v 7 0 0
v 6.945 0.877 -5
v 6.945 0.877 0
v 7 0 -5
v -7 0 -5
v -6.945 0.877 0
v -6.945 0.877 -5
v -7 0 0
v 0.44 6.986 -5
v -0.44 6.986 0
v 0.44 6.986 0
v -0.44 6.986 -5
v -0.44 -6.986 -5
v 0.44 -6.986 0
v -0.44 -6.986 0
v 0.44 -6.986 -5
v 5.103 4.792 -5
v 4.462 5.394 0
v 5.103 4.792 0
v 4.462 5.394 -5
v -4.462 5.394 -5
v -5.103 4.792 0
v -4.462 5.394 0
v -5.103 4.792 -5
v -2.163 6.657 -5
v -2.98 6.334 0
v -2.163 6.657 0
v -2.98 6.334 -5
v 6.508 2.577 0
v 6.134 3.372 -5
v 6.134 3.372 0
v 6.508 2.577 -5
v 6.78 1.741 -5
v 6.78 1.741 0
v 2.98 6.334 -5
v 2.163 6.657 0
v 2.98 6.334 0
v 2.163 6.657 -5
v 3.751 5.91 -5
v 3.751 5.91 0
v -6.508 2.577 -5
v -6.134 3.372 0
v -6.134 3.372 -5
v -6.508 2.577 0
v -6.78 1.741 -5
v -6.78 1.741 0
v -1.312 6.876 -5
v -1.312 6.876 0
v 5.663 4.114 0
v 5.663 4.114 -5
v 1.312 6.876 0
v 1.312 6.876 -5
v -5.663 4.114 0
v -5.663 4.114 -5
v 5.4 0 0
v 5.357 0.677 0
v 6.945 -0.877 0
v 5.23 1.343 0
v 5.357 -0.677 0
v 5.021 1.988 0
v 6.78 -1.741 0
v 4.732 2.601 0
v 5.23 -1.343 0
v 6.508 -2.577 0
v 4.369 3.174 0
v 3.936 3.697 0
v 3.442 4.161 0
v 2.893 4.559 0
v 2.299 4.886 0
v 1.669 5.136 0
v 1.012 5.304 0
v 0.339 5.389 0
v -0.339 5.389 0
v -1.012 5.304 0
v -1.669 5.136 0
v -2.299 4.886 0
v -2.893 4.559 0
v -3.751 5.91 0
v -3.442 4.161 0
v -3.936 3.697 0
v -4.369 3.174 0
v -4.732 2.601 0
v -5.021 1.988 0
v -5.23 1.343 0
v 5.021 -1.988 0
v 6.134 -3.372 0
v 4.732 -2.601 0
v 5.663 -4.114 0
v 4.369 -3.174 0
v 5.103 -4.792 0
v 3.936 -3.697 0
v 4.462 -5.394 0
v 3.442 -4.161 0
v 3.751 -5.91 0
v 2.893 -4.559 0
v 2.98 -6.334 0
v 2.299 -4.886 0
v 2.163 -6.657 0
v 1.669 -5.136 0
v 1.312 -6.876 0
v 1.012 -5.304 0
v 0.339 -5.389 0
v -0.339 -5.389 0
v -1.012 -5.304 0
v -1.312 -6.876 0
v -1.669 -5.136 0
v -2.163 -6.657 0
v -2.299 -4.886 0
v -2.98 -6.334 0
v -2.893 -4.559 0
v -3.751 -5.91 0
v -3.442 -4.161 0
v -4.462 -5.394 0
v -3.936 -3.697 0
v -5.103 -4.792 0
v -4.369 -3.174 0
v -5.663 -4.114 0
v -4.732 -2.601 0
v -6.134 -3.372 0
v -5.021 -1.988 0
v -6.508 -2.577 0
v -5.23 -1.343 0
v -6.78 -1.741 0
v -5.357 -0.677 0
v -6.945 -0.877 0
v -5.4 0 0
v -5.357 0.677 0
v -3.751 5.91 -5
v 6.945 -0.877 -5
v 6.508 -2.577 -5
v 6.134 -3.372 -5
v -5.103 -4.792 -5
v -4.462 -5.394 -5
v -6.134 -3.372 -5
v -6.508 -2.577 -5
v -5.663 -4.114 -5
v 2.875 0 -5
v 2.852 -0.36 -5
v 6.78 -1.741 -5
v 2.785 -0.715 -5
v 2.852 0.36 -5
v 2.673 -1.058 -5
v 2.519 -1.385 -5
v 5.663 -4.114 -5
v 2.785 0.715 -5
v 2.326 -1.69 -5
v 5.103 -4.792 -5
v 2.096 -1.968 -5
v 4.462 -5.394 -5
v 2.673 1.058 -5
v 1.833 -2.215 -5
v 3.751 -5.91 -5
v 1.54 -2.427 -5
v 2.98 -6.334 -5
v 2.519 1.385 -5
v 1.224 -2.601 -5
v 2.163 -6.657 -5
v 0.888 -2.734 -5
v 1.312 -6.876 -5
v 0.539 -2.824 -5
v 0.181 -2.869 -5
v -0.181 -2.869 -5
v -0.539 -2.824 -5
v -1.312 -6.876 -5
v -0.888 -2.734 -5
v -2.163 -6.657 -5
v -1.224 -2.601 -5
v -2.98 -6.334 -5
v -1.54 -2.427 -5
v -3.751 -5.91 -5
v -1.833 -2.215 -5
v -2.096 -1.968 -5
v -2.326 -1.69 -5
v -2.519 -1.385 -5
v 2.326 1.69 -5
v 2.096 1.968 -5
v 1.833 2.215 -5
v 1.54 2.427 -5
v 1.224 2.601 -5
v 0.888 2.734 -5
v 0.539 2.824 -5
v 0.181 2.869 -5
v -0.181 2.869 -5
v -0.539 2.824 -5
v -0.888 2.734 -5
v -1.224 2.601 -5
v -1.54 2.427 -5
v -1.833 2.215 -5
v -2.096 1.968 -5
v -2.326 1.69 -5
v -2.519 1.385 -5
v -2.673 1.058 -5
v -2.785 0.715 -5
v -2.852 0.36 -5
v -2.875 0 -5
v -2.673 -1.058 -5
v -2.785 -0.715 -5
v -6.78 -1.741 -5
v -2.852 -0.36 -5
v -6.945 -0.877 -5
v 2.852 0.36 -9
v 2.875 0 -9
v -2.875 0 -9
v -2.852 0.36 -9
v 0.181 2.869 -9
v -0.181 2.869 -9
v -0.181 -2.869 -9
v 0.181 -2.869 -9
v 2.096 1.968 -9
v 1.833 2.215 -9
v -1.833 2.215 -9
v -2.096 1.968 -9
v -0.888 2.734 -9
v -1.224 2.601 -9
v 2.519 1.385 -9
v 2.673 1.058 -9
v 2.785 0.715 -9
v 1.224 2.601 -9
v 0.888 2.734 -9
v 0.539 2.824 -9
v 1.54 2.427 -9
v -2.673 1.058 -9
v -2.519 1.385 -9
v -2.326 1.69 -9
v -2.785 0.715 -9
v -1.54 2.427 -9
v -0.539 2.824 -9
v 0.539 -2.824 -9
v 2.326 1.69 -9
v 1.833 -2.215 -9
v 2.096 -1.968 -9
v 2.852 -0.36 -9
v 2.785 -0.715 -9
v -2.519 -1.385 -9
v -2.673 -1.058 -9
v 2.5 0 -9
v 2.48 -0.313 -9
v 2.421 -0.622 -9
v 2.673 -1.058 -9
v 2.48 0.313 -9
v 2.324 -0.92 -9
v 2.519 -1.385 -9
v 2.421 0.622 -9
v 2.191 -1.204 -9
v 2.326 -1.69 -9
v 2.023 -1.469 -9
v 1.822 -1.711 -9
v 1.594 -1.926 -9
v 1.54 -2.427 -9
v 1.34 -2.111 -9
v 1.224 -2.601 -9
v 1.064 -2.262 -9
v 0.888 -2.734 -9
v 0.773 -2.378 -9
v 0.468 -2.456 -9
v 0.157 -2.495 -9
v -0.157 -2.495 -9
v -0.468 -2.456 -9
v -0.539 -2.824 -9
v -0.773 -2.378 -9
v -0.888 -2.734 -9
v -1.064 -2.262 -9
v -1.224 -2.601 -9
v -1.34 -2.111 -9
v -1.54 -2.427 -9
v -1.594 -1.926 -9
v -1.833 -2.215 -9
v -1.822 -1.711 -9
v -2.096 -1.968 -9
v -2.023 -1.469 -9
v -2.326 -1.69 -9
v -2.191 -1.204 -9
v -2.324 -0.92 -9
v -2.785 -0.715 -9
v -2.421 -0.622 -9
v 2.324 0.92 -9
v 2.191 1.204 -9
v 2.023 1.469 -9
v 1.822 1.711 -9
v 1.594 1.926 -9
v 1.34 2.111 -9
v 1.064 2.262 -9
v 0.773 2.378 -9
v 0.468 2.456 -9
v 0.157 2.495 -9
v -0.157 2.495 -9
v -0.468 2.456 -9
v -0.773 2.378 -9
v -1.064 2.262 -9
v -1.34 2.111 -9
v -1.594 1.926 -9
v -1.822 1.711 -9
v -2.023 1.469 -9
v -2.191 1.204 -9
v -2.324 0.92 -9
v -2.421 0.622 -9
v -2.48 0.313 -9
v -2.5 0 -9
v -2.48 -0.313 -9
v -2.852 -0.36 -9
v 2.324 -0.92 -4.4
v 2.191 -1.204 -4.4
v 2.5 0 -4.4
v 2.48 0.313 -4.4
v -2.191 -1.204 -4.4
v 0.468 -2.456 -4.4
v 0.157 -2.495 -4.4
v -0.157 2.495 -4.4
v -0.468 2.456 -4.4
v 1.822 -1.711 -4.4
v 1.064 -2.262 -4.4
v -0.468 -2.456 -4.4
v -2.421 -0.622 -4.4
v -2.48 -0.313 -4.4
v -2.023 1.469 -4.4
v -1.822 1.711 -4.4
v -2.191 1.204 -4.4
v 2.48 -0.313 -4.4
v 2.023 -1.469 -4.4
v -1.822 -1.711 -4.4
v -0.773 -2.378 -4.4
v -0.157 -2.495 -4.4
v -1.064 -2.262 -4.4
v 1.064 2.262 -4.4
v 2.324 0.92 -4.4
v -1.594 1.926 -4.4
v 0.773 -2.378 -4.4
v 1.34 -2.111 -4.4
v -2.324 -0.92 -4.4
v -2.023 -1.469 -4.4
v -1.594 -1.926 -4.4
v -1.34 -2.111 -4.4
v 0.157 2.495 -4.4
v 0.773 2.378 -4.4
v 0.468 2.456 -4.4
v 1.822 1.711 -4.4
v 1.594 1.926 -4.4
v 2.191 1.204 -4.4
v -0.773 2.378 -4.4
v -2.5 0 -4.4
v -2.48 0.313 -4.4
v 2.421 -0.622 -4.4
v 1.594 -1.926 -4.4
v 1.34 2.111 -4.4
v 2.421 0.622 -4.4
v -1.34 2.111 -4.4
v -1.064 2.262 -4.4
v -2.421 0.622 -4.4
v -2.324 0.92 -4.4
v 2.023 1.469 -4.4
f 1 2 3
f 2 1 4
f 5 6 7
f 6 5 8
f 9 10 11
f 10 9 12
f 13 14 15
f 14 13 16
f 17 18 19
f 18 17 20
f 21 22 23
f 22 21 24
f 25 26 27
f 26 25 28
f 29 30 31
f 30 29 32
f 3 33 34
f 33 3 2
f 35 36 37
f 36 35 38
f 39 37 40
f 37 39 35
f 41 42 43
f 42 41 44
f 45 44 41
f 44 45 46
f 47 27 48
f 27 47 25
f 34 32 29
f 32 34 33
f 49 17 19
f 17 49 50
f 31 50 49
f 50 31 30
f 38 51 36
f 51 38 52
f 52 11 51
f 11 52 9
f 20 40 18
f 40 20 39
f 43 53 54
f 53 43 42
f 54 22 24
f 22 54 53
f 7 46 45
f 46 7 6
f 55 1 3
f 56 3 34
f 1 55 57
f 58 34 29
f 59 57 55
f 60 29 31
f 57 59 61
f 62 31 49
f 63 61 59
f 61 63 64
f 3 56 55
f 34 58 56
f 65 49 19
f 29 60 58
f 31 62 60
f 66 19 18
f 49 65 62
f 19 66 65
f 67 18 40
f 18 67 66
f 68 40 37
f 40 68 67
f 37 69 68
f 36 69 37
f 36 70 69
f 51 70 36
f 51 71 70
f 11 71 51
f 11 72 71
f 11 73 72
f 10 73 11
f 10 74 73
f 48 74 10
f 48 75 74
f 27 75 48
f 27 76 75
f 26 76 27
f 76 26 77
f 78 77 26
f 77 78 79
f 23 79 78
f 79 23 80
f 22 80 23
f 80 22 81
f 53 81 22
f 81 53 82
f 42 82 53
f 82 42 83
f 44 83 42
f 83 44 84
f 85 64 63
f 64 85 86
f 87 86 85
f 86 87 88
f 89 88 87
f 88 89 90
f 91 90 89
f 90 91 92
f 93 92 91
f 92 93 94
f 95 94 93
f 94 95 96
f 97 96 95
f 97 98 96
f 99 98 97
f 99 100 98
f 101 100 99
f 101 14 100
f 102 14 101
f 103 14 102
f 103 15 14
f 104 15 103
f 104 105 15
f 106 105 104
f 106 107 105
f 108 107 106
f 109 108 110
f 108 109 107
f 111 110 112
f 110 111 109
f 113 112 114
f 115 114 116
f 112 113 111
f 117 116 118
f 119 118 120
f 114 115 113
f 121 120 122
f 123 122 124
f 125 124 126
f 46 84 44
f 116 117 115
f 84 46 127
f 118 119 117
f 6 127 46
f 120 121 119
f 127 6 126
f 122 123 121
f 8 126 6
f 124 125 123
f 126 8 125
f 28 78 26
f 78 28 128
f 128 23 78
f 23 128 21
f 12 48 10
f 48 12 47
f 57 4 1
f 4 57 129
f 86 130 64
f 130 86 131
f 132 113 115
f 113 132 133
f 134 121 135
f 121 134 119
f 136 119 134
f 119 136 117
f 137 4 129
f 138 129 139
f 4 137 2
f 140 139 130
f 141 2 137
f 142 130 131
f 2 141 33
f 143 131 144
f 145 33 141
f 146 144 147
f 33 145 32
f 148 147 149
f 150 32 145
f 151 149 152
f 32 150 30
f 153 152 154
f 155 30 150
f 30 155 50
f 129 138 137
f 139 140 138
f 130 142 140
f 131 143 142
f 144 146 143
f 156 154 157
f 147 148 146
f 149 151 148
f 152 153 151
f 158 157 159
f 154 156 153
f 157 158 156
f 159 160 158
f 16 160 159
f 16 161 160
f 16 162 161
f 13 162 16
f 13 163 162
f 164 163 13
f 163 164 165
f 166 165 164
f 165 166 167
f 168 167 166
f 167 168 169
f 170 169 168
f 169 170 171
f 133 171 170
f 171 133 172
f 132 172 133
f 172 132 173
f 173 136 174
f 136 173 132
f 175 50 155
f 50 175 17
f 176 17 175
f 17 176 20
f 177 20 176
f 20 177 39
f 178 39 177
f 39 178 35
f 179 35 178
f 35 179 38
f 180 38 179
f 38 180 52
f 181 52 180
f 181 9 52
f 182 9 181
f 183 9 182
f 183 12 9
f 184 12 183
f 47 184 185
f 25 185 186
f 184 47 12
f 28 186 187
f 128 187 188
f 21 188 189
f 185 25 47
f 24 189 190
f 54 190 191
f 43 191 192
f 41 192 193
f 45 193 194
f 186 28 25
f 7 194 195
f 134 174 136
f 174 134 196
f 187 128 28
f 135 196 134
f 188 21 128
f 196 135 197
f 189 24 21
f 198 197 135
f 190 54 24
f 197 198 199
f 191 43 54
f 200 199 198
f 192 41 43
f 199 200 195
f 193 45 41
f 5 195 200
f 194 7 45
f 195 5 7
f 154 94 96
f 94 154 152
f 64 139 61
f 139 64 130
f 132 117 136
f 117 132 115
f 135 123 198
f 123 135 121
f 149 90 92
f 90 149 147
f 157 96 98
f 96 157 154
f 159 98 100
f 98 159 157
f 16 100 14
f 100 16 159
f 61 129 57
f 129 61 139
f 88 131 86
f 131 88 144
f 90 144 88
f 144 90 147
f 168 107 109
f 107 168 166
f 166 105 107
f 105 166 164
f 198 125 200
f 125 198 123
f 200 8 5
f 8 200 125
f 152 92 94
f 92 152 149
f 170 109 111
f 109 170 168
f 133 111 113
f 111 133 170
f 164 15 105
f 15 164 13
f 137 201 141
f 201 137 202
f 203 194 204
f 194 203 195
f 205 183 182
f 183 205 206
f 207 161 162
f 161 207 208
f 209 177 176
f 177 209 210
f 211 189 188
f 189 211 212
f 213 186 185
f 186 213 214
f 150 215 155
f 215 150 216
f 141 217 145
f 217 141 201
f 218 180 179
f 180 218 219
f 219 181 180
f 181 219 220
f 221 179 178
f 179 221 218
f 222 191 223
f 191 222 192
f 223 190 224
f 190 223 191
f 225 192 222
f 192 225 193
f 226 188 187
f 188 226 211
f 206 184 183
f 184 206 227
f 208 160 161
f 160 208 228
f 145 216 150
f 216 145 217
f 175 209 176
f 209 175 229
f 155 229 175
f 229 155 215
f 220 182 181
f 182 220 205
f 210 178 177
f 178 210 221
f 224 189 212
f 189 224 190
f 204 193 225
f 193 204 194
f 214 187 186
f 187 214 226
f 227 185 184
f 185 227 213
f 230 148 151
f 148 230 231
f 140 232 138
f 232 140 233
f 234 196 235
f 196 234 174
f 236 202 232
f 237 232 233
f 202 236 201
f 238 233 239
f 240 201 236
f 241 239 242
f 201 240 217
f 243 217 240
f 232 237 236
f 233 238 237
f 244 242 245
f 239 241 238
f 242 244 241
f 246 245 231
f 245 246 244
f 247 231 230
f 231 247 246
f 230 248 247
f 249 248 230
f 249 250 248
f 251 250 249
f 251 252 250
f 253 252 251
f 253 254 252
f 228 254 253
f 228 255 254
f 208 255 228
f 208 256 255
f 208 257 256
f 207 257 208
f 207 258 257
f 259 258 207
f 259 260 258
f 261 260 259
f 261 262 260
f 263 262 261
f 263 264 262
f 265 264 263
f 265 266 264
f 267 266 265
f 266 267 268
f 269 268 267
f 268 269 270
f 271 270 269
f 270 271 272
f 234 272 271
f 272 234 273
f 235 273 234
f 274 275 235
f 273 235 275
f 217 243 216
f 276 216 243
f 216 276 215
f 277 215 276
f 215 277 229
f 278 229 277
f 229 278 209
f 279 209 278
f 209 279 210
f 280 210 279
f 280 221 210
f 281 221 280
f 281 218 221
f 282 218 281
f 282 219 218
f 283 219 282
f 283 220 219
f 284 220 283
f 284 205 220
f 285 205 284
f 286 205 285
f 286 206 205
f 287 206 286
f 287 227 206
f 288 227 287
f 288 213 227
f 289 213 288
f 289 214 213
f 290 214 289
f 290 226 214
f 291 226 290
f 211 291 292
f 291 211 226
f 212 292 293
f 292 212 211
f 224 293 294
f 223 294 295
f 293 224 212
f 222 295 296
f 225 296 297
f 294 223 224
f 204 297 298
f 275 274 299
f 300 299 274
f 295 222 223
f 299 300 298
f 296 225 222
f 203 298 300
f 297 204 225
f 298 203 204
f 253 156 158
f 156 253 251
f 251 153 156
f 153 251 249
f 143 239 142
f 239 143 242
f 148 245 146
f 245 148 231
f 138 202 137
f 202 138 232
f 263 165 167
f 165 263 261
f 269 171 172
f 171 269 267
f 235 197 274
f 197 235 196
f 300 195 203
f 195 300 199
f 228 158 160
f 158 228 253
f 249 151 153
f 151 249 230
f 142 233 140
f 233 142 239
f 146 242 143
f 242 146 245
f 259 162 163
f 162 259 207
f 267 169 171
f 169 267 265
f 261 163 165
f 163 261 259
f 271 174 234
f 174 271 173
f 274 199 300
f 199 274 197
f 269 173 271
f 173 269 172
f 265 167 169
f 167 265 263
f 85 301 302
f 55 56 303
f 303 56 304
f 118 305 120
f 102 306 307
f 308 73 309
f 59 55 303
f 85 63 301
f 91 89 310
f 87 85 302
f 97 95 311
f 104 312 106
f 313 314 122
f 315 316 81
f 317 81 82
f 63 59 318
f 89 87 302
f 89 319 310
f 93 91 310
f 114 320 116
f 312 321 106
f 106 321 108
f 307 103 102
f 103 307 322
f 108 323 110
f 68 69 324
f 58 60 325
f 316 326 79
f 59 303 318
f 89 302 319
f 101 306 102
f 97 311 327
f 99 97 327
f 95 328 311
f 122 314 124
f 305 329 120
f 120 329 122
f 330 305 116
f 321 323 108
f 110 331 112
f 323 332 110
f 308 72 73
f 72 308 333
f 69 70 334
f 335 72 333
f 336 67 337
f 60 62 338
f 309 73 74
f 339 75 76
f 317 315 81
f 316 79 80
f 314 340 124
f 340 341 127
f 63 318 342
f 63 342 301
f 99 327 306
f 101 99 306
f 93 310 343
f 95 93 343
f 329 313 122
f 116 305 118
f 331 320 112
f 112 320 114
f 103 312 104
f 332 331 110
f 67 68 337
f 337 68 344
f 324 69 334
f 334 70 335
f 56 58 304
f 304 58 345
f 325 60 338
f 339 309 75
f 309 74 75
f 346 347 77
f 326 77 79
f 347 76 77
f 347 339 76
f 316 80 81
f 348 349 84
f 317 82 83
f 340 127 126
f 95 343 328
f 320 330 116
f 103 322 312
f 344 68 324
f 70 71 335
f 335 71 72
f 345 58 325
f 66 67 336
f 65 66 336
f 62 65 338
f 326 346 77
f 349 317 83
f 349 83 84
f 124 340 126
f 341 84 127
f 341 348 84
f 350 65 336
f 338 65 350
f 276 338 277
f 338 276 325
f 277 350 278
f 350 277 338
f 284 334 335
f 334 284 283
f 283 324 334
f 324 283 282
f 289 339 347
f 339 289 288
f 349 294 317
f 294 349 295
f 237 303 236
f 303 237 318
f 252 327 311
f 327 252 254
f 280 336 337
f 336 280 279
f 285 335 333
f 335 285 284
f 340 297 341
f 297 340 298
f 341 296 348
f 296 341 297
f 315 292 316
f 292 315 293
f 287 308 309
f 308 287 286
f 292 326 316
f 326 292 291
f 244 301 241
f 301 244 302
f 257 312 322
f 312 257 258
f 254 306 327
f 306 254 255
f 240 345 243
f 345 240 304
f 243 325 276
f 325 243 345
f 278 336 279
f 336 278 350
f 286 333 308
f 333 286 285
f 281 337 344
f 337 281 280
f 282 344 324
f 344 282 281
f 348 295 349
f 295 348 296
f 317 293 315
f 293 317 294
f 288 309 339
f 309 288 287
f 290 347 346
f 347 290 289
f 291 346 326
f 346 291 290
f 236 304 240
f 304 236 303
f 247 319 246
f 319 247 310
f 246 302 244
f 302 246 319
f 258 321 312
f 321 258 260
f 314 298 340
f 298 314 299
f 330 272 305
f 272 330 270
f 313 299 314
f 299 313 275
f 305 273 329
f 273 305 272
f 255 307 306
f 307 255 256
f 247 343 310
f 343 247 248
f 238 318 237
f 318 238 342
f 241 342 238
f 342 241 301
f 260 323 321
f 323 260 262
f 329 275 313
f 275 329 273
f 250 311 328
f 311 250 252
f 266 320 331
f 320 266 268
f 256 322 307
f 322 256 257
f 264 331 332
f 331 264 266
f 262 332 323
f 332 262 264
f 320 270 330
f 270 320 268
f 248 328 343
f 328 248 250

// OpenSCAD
$fn = 50;


difference() {
	union() {
		translate(v = [0, 0, -5.0000000000]) {
			cylinder(h = 5, r = 7.0000000000);
		}
		translate(v = [0, 0, -9.0000000000]) {
			cylinder(h = 9, r = 2.8750000000);
		}
	}
	union() {
		translate(v = [0, 0, 0]) {
			rotate(a = [0, 0, 0]) {
				difference() {
					union() {
						#translate(v = [0, 0, -9.0000000000]) {
							cylinder(h = 9, r = 2.2500000000);
						}
						#translate(v = [0, 0, -4.4000000000]) {
							cylinder(h = 4.4000000000, r1 = 2.5000000000, r2 = 5.4000000000);
						}
						#translate(v = [0, 0, -9.0000000000]) {
							cylinder(h = 9, r = 2.5000000000);
						}
						#translate(v = [0, 0, -9.0000000000]) {
							cylinder(h = 9, r = 2.2500000000);
						}
					}
					union();
				}
			}
		}
	}
}
